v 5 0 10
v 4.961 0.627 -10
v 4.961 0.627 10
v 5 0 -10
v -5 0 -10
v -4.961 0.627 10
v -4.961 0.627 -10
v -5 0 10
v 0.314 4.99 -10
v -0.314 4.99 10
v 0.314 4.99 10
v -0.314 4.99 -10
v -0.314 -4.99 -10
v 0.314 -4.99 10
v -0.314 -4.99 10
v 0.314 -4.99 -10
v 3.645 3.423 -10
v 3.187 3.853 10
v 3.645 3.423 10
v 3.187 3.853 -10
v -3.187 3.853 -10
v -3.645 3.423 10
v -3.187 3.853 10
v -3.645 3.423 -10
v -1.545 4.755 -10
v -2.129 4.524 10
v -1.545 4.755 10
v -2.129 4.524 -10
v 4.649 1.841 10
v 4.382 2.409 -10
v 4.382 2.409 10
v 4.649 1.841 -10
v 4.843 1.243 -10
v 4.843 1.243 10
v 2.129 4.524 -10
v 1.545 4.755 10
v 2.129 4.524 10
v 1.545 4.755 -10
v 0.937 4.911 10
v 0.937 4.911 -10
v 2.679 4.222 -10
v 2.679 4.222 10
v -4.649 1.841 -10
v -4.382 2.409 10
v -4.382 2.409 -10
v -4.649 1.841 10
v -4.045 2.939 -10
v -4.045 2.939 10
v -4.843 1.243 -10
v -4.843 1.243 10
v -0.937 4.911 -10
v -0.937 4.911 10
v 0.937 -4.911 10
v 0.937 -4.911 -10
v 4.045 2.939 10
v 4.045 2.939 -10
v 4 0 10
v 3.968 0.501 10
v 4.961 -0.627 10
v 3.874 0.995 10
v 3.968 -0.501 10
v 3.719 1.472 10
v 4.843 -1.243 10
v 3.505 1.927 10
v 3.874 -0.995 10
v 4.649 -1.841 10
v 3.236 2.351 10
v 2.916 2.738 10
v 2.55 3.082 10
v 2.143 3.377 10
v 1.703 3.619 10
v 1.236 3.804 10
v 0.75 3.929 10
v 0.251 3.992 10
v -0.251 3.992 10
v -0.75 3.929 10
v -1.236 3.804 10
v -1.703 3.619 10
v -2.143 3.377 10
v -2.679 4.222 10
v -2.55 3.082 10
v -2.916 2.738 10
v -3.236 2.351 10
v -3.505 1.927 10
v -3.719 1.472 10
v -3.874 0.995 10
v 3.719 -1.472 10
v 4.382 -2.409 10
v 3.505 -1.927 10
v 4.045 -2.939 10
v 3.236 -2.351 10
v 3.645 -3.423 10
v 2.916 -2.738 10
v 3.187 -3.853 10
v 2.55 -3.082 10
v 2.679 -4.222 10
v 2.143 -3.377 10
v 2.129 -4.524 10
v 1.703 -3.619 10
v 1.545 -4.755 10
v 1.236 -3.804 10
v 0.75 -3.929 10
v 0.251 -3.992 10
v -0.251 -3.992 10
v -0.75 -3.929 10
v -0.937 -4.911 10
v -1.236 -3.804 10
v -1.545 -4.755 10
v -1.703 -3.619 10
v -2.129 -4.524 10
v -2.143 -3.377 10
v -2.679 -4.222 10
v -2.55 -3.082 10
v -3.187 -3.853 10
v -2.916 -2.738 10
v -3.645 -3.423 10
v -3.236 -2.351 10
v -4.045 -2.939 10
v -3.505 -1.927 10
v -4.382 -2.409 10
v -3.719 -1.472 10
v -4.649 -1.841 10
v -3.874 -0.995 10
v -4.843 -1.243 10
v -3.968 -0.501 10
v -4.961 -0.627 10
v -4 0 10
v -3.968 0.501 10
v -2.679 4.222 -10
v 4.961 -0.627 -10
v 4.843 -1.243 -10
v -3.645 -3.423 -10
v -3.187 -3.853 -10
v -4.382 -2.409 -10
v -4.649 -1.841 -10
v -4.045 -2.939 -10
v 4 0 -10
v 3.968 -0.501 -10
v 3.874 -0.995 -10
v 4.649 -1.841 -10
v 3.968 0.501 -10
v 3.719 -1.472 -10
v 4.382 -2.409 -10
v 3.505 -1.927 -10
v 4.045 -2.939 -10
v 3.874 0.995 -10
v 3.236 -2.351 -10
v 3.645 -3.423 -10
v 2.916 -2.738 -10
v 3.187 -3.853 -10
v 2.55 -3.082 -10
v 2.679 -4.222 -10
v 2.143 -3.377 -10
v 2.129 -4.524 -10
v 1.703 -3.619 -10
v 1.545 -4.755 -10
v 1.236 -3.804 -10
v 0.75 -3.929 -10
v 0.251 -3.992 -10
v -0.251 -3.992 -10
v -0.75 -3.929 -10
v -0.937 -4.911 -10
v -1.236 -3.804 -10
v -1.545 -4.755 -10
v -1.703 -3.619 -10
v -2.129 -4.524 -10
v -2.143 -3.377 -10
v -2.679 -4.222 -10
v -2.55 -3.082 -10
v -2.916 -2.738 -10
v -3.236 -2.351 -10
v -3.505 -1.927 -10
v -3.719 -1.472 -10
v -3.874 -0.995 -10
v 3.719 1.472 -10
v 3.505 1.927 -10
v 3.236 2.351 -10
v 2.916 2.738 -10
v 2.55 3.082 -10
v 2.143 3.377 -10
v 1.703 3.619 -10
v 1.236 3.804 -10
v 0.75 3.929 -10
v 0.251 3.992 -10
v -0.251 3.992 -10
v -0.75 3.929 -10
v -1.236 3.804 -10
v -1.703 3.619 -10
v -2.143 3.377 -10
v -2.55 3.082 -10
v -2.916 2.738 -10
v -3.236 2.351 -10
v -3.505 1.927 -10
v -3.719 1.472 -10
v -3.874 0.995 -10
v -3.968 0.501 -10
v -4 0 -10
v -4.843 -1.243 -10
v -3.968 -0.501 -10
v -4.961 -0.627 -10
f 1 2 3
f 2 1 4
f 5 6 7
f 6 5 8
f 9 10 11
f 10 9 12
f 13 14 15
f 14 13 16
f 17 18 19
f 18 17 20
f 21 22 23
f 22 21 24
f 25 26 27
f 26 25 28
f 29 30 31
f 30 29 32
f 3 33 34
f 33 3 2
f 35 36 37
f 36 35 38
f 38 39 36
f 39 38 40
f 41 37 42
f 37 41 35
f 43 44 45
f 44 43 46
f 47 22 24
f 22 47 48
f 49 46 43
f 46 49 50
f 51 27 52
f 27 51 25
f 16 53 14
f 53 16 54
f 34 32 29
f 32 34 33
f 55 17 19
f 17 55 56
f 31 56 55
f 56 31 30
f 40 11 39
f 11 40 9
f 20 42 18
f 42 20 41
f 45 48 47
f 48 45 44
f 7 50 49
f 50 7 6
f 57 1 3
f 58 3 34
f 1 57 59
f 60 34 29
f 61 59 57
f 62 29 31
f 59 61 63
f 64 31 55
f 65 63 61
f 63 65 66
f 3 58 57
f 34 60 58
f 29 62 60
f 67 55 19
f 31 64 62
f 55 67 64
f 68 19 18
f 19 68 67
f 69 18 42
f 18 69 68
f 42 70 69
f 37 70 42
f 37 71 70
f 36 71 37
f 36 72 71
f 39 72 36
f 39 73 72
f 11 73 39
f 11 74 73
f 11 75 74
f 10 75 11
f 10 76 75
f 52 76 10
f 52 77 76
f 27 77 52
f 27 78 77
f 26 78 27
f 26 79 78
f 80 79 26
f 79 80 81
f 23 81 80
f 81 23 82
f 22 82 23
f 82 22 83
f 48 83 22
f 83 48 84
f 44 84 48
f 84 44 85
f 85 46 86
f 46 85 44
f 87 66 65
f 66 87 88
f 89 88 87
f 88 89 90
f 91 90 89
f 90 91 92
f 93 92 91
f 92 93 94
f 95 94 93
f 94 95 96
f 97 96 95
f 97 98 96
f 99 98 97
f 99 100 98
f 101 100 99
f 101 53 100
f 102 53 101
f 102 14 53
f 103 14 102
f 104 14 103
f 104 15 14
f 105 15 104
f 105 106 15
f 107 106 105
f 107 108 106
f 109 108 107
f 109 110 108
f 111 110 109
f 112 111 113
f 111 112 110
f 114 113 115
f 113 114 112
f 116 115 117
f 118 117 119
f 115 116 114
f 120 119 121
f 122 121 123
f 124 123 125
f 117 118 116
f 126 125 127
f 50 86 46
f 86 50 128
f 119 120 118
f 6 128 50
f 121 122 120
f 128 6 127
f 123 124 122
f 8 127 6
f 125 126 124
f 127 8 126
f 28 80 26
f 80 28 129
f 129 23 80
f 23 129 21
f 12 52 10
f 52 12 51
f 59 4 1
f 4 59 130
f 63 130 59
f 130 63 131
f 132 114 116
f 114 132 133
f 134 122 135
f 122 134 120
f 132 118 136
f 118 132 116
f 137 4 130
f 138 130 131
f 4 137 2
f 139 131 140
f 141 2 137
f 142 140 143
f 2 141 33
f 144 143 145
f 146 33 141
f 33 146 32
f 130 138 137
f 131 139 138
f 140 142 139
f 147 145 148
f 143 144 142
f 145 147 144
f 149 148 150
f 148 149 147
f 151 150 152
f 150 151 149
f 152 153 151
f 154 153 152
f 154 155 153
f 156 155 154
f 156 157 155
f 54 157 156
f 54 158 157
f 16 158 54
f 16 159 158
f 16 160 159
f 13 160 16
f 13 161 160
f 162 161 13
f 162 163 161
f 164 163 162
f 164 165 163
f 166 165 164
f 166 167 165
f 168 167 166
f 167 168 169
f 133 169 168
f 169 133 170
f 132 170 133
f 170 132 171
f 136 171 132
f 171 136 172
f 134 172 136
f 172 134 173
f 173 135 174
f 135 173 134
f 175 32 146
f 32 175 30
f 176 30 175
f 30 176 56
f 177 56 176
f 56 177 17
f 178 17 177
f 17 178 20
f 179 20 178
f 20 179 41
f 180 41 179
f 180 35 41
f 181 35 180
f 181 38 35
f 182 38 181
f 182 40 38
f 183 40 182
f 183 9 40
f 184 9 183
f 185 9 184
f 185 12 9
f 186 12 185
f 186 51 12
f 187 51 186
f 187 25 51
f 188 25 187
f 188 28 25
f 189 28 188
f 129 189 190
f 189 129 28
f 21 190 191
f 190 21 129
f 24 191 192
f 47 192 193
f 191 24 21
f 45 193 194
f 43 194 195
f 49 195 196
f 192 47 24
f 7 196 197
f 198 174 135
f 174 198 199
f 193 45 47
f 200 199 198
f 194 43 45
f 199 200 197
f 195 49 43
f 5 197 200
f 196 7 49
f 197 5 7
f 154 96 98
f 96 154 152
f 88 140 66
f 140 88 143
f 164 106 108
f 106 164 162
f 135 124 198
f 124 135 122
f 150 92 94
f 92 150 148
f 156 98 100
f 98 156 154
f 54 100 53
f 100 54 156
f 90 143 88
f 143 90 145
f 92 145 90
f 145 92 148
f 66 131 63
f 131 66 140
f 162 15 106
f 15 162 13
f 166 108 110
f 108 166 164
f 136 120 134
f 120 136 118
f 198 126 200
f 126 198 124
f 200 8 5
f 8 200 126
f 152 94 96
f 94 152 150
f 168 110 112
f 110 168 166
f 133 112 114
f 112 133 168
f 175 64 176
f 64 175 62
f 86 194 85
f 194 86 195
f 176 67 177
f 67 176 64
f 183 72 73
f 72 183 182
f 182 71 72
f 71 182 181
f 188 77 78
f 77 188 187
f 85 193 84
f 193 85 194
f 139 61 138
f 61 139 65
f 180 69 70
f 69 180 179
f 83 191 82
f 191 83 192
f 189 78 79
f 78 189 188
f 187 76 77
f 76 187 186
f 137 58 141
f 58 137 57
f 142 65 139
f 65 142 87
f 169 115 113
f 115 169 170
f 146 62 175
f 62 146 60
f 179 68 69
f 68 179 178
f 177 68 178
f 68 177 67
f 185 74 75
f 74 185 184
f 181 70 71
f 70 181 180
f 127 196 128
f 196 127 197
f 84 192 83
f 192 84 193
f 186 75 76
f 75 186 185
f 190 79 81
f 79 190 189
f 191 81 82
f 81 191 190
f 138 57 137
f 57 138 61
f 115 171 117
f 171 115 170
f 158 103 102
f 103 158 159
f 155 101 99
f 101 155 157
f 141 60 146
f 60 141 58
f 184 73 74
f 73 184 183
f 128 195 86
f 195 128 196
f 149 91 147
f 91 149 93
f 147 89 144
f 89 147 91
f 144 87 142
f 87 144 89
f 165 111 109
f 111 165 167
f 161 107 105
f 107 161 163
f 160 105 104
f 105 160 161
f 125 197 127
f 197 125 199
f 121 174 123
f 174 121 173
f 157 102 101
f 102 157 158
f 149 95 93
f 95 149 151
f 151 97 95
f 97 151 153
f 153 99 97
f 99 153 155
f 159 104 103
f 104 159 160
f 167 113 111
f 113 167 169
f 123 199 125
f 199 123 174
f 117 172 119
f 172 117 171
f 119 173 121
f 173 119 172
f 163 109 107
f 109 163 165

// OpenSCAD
$fn = 50;


difference() {
	union() {
		translate(v = [0, 0, -10.0000000000]) {
			cylinder(h = 20, r = 5.0000000000);
		}
	}
	union() {
		translate(v = [0, 0, -100.0000000000]) {
			cylinder(h = 200, r = 4);
		}
	}
}
